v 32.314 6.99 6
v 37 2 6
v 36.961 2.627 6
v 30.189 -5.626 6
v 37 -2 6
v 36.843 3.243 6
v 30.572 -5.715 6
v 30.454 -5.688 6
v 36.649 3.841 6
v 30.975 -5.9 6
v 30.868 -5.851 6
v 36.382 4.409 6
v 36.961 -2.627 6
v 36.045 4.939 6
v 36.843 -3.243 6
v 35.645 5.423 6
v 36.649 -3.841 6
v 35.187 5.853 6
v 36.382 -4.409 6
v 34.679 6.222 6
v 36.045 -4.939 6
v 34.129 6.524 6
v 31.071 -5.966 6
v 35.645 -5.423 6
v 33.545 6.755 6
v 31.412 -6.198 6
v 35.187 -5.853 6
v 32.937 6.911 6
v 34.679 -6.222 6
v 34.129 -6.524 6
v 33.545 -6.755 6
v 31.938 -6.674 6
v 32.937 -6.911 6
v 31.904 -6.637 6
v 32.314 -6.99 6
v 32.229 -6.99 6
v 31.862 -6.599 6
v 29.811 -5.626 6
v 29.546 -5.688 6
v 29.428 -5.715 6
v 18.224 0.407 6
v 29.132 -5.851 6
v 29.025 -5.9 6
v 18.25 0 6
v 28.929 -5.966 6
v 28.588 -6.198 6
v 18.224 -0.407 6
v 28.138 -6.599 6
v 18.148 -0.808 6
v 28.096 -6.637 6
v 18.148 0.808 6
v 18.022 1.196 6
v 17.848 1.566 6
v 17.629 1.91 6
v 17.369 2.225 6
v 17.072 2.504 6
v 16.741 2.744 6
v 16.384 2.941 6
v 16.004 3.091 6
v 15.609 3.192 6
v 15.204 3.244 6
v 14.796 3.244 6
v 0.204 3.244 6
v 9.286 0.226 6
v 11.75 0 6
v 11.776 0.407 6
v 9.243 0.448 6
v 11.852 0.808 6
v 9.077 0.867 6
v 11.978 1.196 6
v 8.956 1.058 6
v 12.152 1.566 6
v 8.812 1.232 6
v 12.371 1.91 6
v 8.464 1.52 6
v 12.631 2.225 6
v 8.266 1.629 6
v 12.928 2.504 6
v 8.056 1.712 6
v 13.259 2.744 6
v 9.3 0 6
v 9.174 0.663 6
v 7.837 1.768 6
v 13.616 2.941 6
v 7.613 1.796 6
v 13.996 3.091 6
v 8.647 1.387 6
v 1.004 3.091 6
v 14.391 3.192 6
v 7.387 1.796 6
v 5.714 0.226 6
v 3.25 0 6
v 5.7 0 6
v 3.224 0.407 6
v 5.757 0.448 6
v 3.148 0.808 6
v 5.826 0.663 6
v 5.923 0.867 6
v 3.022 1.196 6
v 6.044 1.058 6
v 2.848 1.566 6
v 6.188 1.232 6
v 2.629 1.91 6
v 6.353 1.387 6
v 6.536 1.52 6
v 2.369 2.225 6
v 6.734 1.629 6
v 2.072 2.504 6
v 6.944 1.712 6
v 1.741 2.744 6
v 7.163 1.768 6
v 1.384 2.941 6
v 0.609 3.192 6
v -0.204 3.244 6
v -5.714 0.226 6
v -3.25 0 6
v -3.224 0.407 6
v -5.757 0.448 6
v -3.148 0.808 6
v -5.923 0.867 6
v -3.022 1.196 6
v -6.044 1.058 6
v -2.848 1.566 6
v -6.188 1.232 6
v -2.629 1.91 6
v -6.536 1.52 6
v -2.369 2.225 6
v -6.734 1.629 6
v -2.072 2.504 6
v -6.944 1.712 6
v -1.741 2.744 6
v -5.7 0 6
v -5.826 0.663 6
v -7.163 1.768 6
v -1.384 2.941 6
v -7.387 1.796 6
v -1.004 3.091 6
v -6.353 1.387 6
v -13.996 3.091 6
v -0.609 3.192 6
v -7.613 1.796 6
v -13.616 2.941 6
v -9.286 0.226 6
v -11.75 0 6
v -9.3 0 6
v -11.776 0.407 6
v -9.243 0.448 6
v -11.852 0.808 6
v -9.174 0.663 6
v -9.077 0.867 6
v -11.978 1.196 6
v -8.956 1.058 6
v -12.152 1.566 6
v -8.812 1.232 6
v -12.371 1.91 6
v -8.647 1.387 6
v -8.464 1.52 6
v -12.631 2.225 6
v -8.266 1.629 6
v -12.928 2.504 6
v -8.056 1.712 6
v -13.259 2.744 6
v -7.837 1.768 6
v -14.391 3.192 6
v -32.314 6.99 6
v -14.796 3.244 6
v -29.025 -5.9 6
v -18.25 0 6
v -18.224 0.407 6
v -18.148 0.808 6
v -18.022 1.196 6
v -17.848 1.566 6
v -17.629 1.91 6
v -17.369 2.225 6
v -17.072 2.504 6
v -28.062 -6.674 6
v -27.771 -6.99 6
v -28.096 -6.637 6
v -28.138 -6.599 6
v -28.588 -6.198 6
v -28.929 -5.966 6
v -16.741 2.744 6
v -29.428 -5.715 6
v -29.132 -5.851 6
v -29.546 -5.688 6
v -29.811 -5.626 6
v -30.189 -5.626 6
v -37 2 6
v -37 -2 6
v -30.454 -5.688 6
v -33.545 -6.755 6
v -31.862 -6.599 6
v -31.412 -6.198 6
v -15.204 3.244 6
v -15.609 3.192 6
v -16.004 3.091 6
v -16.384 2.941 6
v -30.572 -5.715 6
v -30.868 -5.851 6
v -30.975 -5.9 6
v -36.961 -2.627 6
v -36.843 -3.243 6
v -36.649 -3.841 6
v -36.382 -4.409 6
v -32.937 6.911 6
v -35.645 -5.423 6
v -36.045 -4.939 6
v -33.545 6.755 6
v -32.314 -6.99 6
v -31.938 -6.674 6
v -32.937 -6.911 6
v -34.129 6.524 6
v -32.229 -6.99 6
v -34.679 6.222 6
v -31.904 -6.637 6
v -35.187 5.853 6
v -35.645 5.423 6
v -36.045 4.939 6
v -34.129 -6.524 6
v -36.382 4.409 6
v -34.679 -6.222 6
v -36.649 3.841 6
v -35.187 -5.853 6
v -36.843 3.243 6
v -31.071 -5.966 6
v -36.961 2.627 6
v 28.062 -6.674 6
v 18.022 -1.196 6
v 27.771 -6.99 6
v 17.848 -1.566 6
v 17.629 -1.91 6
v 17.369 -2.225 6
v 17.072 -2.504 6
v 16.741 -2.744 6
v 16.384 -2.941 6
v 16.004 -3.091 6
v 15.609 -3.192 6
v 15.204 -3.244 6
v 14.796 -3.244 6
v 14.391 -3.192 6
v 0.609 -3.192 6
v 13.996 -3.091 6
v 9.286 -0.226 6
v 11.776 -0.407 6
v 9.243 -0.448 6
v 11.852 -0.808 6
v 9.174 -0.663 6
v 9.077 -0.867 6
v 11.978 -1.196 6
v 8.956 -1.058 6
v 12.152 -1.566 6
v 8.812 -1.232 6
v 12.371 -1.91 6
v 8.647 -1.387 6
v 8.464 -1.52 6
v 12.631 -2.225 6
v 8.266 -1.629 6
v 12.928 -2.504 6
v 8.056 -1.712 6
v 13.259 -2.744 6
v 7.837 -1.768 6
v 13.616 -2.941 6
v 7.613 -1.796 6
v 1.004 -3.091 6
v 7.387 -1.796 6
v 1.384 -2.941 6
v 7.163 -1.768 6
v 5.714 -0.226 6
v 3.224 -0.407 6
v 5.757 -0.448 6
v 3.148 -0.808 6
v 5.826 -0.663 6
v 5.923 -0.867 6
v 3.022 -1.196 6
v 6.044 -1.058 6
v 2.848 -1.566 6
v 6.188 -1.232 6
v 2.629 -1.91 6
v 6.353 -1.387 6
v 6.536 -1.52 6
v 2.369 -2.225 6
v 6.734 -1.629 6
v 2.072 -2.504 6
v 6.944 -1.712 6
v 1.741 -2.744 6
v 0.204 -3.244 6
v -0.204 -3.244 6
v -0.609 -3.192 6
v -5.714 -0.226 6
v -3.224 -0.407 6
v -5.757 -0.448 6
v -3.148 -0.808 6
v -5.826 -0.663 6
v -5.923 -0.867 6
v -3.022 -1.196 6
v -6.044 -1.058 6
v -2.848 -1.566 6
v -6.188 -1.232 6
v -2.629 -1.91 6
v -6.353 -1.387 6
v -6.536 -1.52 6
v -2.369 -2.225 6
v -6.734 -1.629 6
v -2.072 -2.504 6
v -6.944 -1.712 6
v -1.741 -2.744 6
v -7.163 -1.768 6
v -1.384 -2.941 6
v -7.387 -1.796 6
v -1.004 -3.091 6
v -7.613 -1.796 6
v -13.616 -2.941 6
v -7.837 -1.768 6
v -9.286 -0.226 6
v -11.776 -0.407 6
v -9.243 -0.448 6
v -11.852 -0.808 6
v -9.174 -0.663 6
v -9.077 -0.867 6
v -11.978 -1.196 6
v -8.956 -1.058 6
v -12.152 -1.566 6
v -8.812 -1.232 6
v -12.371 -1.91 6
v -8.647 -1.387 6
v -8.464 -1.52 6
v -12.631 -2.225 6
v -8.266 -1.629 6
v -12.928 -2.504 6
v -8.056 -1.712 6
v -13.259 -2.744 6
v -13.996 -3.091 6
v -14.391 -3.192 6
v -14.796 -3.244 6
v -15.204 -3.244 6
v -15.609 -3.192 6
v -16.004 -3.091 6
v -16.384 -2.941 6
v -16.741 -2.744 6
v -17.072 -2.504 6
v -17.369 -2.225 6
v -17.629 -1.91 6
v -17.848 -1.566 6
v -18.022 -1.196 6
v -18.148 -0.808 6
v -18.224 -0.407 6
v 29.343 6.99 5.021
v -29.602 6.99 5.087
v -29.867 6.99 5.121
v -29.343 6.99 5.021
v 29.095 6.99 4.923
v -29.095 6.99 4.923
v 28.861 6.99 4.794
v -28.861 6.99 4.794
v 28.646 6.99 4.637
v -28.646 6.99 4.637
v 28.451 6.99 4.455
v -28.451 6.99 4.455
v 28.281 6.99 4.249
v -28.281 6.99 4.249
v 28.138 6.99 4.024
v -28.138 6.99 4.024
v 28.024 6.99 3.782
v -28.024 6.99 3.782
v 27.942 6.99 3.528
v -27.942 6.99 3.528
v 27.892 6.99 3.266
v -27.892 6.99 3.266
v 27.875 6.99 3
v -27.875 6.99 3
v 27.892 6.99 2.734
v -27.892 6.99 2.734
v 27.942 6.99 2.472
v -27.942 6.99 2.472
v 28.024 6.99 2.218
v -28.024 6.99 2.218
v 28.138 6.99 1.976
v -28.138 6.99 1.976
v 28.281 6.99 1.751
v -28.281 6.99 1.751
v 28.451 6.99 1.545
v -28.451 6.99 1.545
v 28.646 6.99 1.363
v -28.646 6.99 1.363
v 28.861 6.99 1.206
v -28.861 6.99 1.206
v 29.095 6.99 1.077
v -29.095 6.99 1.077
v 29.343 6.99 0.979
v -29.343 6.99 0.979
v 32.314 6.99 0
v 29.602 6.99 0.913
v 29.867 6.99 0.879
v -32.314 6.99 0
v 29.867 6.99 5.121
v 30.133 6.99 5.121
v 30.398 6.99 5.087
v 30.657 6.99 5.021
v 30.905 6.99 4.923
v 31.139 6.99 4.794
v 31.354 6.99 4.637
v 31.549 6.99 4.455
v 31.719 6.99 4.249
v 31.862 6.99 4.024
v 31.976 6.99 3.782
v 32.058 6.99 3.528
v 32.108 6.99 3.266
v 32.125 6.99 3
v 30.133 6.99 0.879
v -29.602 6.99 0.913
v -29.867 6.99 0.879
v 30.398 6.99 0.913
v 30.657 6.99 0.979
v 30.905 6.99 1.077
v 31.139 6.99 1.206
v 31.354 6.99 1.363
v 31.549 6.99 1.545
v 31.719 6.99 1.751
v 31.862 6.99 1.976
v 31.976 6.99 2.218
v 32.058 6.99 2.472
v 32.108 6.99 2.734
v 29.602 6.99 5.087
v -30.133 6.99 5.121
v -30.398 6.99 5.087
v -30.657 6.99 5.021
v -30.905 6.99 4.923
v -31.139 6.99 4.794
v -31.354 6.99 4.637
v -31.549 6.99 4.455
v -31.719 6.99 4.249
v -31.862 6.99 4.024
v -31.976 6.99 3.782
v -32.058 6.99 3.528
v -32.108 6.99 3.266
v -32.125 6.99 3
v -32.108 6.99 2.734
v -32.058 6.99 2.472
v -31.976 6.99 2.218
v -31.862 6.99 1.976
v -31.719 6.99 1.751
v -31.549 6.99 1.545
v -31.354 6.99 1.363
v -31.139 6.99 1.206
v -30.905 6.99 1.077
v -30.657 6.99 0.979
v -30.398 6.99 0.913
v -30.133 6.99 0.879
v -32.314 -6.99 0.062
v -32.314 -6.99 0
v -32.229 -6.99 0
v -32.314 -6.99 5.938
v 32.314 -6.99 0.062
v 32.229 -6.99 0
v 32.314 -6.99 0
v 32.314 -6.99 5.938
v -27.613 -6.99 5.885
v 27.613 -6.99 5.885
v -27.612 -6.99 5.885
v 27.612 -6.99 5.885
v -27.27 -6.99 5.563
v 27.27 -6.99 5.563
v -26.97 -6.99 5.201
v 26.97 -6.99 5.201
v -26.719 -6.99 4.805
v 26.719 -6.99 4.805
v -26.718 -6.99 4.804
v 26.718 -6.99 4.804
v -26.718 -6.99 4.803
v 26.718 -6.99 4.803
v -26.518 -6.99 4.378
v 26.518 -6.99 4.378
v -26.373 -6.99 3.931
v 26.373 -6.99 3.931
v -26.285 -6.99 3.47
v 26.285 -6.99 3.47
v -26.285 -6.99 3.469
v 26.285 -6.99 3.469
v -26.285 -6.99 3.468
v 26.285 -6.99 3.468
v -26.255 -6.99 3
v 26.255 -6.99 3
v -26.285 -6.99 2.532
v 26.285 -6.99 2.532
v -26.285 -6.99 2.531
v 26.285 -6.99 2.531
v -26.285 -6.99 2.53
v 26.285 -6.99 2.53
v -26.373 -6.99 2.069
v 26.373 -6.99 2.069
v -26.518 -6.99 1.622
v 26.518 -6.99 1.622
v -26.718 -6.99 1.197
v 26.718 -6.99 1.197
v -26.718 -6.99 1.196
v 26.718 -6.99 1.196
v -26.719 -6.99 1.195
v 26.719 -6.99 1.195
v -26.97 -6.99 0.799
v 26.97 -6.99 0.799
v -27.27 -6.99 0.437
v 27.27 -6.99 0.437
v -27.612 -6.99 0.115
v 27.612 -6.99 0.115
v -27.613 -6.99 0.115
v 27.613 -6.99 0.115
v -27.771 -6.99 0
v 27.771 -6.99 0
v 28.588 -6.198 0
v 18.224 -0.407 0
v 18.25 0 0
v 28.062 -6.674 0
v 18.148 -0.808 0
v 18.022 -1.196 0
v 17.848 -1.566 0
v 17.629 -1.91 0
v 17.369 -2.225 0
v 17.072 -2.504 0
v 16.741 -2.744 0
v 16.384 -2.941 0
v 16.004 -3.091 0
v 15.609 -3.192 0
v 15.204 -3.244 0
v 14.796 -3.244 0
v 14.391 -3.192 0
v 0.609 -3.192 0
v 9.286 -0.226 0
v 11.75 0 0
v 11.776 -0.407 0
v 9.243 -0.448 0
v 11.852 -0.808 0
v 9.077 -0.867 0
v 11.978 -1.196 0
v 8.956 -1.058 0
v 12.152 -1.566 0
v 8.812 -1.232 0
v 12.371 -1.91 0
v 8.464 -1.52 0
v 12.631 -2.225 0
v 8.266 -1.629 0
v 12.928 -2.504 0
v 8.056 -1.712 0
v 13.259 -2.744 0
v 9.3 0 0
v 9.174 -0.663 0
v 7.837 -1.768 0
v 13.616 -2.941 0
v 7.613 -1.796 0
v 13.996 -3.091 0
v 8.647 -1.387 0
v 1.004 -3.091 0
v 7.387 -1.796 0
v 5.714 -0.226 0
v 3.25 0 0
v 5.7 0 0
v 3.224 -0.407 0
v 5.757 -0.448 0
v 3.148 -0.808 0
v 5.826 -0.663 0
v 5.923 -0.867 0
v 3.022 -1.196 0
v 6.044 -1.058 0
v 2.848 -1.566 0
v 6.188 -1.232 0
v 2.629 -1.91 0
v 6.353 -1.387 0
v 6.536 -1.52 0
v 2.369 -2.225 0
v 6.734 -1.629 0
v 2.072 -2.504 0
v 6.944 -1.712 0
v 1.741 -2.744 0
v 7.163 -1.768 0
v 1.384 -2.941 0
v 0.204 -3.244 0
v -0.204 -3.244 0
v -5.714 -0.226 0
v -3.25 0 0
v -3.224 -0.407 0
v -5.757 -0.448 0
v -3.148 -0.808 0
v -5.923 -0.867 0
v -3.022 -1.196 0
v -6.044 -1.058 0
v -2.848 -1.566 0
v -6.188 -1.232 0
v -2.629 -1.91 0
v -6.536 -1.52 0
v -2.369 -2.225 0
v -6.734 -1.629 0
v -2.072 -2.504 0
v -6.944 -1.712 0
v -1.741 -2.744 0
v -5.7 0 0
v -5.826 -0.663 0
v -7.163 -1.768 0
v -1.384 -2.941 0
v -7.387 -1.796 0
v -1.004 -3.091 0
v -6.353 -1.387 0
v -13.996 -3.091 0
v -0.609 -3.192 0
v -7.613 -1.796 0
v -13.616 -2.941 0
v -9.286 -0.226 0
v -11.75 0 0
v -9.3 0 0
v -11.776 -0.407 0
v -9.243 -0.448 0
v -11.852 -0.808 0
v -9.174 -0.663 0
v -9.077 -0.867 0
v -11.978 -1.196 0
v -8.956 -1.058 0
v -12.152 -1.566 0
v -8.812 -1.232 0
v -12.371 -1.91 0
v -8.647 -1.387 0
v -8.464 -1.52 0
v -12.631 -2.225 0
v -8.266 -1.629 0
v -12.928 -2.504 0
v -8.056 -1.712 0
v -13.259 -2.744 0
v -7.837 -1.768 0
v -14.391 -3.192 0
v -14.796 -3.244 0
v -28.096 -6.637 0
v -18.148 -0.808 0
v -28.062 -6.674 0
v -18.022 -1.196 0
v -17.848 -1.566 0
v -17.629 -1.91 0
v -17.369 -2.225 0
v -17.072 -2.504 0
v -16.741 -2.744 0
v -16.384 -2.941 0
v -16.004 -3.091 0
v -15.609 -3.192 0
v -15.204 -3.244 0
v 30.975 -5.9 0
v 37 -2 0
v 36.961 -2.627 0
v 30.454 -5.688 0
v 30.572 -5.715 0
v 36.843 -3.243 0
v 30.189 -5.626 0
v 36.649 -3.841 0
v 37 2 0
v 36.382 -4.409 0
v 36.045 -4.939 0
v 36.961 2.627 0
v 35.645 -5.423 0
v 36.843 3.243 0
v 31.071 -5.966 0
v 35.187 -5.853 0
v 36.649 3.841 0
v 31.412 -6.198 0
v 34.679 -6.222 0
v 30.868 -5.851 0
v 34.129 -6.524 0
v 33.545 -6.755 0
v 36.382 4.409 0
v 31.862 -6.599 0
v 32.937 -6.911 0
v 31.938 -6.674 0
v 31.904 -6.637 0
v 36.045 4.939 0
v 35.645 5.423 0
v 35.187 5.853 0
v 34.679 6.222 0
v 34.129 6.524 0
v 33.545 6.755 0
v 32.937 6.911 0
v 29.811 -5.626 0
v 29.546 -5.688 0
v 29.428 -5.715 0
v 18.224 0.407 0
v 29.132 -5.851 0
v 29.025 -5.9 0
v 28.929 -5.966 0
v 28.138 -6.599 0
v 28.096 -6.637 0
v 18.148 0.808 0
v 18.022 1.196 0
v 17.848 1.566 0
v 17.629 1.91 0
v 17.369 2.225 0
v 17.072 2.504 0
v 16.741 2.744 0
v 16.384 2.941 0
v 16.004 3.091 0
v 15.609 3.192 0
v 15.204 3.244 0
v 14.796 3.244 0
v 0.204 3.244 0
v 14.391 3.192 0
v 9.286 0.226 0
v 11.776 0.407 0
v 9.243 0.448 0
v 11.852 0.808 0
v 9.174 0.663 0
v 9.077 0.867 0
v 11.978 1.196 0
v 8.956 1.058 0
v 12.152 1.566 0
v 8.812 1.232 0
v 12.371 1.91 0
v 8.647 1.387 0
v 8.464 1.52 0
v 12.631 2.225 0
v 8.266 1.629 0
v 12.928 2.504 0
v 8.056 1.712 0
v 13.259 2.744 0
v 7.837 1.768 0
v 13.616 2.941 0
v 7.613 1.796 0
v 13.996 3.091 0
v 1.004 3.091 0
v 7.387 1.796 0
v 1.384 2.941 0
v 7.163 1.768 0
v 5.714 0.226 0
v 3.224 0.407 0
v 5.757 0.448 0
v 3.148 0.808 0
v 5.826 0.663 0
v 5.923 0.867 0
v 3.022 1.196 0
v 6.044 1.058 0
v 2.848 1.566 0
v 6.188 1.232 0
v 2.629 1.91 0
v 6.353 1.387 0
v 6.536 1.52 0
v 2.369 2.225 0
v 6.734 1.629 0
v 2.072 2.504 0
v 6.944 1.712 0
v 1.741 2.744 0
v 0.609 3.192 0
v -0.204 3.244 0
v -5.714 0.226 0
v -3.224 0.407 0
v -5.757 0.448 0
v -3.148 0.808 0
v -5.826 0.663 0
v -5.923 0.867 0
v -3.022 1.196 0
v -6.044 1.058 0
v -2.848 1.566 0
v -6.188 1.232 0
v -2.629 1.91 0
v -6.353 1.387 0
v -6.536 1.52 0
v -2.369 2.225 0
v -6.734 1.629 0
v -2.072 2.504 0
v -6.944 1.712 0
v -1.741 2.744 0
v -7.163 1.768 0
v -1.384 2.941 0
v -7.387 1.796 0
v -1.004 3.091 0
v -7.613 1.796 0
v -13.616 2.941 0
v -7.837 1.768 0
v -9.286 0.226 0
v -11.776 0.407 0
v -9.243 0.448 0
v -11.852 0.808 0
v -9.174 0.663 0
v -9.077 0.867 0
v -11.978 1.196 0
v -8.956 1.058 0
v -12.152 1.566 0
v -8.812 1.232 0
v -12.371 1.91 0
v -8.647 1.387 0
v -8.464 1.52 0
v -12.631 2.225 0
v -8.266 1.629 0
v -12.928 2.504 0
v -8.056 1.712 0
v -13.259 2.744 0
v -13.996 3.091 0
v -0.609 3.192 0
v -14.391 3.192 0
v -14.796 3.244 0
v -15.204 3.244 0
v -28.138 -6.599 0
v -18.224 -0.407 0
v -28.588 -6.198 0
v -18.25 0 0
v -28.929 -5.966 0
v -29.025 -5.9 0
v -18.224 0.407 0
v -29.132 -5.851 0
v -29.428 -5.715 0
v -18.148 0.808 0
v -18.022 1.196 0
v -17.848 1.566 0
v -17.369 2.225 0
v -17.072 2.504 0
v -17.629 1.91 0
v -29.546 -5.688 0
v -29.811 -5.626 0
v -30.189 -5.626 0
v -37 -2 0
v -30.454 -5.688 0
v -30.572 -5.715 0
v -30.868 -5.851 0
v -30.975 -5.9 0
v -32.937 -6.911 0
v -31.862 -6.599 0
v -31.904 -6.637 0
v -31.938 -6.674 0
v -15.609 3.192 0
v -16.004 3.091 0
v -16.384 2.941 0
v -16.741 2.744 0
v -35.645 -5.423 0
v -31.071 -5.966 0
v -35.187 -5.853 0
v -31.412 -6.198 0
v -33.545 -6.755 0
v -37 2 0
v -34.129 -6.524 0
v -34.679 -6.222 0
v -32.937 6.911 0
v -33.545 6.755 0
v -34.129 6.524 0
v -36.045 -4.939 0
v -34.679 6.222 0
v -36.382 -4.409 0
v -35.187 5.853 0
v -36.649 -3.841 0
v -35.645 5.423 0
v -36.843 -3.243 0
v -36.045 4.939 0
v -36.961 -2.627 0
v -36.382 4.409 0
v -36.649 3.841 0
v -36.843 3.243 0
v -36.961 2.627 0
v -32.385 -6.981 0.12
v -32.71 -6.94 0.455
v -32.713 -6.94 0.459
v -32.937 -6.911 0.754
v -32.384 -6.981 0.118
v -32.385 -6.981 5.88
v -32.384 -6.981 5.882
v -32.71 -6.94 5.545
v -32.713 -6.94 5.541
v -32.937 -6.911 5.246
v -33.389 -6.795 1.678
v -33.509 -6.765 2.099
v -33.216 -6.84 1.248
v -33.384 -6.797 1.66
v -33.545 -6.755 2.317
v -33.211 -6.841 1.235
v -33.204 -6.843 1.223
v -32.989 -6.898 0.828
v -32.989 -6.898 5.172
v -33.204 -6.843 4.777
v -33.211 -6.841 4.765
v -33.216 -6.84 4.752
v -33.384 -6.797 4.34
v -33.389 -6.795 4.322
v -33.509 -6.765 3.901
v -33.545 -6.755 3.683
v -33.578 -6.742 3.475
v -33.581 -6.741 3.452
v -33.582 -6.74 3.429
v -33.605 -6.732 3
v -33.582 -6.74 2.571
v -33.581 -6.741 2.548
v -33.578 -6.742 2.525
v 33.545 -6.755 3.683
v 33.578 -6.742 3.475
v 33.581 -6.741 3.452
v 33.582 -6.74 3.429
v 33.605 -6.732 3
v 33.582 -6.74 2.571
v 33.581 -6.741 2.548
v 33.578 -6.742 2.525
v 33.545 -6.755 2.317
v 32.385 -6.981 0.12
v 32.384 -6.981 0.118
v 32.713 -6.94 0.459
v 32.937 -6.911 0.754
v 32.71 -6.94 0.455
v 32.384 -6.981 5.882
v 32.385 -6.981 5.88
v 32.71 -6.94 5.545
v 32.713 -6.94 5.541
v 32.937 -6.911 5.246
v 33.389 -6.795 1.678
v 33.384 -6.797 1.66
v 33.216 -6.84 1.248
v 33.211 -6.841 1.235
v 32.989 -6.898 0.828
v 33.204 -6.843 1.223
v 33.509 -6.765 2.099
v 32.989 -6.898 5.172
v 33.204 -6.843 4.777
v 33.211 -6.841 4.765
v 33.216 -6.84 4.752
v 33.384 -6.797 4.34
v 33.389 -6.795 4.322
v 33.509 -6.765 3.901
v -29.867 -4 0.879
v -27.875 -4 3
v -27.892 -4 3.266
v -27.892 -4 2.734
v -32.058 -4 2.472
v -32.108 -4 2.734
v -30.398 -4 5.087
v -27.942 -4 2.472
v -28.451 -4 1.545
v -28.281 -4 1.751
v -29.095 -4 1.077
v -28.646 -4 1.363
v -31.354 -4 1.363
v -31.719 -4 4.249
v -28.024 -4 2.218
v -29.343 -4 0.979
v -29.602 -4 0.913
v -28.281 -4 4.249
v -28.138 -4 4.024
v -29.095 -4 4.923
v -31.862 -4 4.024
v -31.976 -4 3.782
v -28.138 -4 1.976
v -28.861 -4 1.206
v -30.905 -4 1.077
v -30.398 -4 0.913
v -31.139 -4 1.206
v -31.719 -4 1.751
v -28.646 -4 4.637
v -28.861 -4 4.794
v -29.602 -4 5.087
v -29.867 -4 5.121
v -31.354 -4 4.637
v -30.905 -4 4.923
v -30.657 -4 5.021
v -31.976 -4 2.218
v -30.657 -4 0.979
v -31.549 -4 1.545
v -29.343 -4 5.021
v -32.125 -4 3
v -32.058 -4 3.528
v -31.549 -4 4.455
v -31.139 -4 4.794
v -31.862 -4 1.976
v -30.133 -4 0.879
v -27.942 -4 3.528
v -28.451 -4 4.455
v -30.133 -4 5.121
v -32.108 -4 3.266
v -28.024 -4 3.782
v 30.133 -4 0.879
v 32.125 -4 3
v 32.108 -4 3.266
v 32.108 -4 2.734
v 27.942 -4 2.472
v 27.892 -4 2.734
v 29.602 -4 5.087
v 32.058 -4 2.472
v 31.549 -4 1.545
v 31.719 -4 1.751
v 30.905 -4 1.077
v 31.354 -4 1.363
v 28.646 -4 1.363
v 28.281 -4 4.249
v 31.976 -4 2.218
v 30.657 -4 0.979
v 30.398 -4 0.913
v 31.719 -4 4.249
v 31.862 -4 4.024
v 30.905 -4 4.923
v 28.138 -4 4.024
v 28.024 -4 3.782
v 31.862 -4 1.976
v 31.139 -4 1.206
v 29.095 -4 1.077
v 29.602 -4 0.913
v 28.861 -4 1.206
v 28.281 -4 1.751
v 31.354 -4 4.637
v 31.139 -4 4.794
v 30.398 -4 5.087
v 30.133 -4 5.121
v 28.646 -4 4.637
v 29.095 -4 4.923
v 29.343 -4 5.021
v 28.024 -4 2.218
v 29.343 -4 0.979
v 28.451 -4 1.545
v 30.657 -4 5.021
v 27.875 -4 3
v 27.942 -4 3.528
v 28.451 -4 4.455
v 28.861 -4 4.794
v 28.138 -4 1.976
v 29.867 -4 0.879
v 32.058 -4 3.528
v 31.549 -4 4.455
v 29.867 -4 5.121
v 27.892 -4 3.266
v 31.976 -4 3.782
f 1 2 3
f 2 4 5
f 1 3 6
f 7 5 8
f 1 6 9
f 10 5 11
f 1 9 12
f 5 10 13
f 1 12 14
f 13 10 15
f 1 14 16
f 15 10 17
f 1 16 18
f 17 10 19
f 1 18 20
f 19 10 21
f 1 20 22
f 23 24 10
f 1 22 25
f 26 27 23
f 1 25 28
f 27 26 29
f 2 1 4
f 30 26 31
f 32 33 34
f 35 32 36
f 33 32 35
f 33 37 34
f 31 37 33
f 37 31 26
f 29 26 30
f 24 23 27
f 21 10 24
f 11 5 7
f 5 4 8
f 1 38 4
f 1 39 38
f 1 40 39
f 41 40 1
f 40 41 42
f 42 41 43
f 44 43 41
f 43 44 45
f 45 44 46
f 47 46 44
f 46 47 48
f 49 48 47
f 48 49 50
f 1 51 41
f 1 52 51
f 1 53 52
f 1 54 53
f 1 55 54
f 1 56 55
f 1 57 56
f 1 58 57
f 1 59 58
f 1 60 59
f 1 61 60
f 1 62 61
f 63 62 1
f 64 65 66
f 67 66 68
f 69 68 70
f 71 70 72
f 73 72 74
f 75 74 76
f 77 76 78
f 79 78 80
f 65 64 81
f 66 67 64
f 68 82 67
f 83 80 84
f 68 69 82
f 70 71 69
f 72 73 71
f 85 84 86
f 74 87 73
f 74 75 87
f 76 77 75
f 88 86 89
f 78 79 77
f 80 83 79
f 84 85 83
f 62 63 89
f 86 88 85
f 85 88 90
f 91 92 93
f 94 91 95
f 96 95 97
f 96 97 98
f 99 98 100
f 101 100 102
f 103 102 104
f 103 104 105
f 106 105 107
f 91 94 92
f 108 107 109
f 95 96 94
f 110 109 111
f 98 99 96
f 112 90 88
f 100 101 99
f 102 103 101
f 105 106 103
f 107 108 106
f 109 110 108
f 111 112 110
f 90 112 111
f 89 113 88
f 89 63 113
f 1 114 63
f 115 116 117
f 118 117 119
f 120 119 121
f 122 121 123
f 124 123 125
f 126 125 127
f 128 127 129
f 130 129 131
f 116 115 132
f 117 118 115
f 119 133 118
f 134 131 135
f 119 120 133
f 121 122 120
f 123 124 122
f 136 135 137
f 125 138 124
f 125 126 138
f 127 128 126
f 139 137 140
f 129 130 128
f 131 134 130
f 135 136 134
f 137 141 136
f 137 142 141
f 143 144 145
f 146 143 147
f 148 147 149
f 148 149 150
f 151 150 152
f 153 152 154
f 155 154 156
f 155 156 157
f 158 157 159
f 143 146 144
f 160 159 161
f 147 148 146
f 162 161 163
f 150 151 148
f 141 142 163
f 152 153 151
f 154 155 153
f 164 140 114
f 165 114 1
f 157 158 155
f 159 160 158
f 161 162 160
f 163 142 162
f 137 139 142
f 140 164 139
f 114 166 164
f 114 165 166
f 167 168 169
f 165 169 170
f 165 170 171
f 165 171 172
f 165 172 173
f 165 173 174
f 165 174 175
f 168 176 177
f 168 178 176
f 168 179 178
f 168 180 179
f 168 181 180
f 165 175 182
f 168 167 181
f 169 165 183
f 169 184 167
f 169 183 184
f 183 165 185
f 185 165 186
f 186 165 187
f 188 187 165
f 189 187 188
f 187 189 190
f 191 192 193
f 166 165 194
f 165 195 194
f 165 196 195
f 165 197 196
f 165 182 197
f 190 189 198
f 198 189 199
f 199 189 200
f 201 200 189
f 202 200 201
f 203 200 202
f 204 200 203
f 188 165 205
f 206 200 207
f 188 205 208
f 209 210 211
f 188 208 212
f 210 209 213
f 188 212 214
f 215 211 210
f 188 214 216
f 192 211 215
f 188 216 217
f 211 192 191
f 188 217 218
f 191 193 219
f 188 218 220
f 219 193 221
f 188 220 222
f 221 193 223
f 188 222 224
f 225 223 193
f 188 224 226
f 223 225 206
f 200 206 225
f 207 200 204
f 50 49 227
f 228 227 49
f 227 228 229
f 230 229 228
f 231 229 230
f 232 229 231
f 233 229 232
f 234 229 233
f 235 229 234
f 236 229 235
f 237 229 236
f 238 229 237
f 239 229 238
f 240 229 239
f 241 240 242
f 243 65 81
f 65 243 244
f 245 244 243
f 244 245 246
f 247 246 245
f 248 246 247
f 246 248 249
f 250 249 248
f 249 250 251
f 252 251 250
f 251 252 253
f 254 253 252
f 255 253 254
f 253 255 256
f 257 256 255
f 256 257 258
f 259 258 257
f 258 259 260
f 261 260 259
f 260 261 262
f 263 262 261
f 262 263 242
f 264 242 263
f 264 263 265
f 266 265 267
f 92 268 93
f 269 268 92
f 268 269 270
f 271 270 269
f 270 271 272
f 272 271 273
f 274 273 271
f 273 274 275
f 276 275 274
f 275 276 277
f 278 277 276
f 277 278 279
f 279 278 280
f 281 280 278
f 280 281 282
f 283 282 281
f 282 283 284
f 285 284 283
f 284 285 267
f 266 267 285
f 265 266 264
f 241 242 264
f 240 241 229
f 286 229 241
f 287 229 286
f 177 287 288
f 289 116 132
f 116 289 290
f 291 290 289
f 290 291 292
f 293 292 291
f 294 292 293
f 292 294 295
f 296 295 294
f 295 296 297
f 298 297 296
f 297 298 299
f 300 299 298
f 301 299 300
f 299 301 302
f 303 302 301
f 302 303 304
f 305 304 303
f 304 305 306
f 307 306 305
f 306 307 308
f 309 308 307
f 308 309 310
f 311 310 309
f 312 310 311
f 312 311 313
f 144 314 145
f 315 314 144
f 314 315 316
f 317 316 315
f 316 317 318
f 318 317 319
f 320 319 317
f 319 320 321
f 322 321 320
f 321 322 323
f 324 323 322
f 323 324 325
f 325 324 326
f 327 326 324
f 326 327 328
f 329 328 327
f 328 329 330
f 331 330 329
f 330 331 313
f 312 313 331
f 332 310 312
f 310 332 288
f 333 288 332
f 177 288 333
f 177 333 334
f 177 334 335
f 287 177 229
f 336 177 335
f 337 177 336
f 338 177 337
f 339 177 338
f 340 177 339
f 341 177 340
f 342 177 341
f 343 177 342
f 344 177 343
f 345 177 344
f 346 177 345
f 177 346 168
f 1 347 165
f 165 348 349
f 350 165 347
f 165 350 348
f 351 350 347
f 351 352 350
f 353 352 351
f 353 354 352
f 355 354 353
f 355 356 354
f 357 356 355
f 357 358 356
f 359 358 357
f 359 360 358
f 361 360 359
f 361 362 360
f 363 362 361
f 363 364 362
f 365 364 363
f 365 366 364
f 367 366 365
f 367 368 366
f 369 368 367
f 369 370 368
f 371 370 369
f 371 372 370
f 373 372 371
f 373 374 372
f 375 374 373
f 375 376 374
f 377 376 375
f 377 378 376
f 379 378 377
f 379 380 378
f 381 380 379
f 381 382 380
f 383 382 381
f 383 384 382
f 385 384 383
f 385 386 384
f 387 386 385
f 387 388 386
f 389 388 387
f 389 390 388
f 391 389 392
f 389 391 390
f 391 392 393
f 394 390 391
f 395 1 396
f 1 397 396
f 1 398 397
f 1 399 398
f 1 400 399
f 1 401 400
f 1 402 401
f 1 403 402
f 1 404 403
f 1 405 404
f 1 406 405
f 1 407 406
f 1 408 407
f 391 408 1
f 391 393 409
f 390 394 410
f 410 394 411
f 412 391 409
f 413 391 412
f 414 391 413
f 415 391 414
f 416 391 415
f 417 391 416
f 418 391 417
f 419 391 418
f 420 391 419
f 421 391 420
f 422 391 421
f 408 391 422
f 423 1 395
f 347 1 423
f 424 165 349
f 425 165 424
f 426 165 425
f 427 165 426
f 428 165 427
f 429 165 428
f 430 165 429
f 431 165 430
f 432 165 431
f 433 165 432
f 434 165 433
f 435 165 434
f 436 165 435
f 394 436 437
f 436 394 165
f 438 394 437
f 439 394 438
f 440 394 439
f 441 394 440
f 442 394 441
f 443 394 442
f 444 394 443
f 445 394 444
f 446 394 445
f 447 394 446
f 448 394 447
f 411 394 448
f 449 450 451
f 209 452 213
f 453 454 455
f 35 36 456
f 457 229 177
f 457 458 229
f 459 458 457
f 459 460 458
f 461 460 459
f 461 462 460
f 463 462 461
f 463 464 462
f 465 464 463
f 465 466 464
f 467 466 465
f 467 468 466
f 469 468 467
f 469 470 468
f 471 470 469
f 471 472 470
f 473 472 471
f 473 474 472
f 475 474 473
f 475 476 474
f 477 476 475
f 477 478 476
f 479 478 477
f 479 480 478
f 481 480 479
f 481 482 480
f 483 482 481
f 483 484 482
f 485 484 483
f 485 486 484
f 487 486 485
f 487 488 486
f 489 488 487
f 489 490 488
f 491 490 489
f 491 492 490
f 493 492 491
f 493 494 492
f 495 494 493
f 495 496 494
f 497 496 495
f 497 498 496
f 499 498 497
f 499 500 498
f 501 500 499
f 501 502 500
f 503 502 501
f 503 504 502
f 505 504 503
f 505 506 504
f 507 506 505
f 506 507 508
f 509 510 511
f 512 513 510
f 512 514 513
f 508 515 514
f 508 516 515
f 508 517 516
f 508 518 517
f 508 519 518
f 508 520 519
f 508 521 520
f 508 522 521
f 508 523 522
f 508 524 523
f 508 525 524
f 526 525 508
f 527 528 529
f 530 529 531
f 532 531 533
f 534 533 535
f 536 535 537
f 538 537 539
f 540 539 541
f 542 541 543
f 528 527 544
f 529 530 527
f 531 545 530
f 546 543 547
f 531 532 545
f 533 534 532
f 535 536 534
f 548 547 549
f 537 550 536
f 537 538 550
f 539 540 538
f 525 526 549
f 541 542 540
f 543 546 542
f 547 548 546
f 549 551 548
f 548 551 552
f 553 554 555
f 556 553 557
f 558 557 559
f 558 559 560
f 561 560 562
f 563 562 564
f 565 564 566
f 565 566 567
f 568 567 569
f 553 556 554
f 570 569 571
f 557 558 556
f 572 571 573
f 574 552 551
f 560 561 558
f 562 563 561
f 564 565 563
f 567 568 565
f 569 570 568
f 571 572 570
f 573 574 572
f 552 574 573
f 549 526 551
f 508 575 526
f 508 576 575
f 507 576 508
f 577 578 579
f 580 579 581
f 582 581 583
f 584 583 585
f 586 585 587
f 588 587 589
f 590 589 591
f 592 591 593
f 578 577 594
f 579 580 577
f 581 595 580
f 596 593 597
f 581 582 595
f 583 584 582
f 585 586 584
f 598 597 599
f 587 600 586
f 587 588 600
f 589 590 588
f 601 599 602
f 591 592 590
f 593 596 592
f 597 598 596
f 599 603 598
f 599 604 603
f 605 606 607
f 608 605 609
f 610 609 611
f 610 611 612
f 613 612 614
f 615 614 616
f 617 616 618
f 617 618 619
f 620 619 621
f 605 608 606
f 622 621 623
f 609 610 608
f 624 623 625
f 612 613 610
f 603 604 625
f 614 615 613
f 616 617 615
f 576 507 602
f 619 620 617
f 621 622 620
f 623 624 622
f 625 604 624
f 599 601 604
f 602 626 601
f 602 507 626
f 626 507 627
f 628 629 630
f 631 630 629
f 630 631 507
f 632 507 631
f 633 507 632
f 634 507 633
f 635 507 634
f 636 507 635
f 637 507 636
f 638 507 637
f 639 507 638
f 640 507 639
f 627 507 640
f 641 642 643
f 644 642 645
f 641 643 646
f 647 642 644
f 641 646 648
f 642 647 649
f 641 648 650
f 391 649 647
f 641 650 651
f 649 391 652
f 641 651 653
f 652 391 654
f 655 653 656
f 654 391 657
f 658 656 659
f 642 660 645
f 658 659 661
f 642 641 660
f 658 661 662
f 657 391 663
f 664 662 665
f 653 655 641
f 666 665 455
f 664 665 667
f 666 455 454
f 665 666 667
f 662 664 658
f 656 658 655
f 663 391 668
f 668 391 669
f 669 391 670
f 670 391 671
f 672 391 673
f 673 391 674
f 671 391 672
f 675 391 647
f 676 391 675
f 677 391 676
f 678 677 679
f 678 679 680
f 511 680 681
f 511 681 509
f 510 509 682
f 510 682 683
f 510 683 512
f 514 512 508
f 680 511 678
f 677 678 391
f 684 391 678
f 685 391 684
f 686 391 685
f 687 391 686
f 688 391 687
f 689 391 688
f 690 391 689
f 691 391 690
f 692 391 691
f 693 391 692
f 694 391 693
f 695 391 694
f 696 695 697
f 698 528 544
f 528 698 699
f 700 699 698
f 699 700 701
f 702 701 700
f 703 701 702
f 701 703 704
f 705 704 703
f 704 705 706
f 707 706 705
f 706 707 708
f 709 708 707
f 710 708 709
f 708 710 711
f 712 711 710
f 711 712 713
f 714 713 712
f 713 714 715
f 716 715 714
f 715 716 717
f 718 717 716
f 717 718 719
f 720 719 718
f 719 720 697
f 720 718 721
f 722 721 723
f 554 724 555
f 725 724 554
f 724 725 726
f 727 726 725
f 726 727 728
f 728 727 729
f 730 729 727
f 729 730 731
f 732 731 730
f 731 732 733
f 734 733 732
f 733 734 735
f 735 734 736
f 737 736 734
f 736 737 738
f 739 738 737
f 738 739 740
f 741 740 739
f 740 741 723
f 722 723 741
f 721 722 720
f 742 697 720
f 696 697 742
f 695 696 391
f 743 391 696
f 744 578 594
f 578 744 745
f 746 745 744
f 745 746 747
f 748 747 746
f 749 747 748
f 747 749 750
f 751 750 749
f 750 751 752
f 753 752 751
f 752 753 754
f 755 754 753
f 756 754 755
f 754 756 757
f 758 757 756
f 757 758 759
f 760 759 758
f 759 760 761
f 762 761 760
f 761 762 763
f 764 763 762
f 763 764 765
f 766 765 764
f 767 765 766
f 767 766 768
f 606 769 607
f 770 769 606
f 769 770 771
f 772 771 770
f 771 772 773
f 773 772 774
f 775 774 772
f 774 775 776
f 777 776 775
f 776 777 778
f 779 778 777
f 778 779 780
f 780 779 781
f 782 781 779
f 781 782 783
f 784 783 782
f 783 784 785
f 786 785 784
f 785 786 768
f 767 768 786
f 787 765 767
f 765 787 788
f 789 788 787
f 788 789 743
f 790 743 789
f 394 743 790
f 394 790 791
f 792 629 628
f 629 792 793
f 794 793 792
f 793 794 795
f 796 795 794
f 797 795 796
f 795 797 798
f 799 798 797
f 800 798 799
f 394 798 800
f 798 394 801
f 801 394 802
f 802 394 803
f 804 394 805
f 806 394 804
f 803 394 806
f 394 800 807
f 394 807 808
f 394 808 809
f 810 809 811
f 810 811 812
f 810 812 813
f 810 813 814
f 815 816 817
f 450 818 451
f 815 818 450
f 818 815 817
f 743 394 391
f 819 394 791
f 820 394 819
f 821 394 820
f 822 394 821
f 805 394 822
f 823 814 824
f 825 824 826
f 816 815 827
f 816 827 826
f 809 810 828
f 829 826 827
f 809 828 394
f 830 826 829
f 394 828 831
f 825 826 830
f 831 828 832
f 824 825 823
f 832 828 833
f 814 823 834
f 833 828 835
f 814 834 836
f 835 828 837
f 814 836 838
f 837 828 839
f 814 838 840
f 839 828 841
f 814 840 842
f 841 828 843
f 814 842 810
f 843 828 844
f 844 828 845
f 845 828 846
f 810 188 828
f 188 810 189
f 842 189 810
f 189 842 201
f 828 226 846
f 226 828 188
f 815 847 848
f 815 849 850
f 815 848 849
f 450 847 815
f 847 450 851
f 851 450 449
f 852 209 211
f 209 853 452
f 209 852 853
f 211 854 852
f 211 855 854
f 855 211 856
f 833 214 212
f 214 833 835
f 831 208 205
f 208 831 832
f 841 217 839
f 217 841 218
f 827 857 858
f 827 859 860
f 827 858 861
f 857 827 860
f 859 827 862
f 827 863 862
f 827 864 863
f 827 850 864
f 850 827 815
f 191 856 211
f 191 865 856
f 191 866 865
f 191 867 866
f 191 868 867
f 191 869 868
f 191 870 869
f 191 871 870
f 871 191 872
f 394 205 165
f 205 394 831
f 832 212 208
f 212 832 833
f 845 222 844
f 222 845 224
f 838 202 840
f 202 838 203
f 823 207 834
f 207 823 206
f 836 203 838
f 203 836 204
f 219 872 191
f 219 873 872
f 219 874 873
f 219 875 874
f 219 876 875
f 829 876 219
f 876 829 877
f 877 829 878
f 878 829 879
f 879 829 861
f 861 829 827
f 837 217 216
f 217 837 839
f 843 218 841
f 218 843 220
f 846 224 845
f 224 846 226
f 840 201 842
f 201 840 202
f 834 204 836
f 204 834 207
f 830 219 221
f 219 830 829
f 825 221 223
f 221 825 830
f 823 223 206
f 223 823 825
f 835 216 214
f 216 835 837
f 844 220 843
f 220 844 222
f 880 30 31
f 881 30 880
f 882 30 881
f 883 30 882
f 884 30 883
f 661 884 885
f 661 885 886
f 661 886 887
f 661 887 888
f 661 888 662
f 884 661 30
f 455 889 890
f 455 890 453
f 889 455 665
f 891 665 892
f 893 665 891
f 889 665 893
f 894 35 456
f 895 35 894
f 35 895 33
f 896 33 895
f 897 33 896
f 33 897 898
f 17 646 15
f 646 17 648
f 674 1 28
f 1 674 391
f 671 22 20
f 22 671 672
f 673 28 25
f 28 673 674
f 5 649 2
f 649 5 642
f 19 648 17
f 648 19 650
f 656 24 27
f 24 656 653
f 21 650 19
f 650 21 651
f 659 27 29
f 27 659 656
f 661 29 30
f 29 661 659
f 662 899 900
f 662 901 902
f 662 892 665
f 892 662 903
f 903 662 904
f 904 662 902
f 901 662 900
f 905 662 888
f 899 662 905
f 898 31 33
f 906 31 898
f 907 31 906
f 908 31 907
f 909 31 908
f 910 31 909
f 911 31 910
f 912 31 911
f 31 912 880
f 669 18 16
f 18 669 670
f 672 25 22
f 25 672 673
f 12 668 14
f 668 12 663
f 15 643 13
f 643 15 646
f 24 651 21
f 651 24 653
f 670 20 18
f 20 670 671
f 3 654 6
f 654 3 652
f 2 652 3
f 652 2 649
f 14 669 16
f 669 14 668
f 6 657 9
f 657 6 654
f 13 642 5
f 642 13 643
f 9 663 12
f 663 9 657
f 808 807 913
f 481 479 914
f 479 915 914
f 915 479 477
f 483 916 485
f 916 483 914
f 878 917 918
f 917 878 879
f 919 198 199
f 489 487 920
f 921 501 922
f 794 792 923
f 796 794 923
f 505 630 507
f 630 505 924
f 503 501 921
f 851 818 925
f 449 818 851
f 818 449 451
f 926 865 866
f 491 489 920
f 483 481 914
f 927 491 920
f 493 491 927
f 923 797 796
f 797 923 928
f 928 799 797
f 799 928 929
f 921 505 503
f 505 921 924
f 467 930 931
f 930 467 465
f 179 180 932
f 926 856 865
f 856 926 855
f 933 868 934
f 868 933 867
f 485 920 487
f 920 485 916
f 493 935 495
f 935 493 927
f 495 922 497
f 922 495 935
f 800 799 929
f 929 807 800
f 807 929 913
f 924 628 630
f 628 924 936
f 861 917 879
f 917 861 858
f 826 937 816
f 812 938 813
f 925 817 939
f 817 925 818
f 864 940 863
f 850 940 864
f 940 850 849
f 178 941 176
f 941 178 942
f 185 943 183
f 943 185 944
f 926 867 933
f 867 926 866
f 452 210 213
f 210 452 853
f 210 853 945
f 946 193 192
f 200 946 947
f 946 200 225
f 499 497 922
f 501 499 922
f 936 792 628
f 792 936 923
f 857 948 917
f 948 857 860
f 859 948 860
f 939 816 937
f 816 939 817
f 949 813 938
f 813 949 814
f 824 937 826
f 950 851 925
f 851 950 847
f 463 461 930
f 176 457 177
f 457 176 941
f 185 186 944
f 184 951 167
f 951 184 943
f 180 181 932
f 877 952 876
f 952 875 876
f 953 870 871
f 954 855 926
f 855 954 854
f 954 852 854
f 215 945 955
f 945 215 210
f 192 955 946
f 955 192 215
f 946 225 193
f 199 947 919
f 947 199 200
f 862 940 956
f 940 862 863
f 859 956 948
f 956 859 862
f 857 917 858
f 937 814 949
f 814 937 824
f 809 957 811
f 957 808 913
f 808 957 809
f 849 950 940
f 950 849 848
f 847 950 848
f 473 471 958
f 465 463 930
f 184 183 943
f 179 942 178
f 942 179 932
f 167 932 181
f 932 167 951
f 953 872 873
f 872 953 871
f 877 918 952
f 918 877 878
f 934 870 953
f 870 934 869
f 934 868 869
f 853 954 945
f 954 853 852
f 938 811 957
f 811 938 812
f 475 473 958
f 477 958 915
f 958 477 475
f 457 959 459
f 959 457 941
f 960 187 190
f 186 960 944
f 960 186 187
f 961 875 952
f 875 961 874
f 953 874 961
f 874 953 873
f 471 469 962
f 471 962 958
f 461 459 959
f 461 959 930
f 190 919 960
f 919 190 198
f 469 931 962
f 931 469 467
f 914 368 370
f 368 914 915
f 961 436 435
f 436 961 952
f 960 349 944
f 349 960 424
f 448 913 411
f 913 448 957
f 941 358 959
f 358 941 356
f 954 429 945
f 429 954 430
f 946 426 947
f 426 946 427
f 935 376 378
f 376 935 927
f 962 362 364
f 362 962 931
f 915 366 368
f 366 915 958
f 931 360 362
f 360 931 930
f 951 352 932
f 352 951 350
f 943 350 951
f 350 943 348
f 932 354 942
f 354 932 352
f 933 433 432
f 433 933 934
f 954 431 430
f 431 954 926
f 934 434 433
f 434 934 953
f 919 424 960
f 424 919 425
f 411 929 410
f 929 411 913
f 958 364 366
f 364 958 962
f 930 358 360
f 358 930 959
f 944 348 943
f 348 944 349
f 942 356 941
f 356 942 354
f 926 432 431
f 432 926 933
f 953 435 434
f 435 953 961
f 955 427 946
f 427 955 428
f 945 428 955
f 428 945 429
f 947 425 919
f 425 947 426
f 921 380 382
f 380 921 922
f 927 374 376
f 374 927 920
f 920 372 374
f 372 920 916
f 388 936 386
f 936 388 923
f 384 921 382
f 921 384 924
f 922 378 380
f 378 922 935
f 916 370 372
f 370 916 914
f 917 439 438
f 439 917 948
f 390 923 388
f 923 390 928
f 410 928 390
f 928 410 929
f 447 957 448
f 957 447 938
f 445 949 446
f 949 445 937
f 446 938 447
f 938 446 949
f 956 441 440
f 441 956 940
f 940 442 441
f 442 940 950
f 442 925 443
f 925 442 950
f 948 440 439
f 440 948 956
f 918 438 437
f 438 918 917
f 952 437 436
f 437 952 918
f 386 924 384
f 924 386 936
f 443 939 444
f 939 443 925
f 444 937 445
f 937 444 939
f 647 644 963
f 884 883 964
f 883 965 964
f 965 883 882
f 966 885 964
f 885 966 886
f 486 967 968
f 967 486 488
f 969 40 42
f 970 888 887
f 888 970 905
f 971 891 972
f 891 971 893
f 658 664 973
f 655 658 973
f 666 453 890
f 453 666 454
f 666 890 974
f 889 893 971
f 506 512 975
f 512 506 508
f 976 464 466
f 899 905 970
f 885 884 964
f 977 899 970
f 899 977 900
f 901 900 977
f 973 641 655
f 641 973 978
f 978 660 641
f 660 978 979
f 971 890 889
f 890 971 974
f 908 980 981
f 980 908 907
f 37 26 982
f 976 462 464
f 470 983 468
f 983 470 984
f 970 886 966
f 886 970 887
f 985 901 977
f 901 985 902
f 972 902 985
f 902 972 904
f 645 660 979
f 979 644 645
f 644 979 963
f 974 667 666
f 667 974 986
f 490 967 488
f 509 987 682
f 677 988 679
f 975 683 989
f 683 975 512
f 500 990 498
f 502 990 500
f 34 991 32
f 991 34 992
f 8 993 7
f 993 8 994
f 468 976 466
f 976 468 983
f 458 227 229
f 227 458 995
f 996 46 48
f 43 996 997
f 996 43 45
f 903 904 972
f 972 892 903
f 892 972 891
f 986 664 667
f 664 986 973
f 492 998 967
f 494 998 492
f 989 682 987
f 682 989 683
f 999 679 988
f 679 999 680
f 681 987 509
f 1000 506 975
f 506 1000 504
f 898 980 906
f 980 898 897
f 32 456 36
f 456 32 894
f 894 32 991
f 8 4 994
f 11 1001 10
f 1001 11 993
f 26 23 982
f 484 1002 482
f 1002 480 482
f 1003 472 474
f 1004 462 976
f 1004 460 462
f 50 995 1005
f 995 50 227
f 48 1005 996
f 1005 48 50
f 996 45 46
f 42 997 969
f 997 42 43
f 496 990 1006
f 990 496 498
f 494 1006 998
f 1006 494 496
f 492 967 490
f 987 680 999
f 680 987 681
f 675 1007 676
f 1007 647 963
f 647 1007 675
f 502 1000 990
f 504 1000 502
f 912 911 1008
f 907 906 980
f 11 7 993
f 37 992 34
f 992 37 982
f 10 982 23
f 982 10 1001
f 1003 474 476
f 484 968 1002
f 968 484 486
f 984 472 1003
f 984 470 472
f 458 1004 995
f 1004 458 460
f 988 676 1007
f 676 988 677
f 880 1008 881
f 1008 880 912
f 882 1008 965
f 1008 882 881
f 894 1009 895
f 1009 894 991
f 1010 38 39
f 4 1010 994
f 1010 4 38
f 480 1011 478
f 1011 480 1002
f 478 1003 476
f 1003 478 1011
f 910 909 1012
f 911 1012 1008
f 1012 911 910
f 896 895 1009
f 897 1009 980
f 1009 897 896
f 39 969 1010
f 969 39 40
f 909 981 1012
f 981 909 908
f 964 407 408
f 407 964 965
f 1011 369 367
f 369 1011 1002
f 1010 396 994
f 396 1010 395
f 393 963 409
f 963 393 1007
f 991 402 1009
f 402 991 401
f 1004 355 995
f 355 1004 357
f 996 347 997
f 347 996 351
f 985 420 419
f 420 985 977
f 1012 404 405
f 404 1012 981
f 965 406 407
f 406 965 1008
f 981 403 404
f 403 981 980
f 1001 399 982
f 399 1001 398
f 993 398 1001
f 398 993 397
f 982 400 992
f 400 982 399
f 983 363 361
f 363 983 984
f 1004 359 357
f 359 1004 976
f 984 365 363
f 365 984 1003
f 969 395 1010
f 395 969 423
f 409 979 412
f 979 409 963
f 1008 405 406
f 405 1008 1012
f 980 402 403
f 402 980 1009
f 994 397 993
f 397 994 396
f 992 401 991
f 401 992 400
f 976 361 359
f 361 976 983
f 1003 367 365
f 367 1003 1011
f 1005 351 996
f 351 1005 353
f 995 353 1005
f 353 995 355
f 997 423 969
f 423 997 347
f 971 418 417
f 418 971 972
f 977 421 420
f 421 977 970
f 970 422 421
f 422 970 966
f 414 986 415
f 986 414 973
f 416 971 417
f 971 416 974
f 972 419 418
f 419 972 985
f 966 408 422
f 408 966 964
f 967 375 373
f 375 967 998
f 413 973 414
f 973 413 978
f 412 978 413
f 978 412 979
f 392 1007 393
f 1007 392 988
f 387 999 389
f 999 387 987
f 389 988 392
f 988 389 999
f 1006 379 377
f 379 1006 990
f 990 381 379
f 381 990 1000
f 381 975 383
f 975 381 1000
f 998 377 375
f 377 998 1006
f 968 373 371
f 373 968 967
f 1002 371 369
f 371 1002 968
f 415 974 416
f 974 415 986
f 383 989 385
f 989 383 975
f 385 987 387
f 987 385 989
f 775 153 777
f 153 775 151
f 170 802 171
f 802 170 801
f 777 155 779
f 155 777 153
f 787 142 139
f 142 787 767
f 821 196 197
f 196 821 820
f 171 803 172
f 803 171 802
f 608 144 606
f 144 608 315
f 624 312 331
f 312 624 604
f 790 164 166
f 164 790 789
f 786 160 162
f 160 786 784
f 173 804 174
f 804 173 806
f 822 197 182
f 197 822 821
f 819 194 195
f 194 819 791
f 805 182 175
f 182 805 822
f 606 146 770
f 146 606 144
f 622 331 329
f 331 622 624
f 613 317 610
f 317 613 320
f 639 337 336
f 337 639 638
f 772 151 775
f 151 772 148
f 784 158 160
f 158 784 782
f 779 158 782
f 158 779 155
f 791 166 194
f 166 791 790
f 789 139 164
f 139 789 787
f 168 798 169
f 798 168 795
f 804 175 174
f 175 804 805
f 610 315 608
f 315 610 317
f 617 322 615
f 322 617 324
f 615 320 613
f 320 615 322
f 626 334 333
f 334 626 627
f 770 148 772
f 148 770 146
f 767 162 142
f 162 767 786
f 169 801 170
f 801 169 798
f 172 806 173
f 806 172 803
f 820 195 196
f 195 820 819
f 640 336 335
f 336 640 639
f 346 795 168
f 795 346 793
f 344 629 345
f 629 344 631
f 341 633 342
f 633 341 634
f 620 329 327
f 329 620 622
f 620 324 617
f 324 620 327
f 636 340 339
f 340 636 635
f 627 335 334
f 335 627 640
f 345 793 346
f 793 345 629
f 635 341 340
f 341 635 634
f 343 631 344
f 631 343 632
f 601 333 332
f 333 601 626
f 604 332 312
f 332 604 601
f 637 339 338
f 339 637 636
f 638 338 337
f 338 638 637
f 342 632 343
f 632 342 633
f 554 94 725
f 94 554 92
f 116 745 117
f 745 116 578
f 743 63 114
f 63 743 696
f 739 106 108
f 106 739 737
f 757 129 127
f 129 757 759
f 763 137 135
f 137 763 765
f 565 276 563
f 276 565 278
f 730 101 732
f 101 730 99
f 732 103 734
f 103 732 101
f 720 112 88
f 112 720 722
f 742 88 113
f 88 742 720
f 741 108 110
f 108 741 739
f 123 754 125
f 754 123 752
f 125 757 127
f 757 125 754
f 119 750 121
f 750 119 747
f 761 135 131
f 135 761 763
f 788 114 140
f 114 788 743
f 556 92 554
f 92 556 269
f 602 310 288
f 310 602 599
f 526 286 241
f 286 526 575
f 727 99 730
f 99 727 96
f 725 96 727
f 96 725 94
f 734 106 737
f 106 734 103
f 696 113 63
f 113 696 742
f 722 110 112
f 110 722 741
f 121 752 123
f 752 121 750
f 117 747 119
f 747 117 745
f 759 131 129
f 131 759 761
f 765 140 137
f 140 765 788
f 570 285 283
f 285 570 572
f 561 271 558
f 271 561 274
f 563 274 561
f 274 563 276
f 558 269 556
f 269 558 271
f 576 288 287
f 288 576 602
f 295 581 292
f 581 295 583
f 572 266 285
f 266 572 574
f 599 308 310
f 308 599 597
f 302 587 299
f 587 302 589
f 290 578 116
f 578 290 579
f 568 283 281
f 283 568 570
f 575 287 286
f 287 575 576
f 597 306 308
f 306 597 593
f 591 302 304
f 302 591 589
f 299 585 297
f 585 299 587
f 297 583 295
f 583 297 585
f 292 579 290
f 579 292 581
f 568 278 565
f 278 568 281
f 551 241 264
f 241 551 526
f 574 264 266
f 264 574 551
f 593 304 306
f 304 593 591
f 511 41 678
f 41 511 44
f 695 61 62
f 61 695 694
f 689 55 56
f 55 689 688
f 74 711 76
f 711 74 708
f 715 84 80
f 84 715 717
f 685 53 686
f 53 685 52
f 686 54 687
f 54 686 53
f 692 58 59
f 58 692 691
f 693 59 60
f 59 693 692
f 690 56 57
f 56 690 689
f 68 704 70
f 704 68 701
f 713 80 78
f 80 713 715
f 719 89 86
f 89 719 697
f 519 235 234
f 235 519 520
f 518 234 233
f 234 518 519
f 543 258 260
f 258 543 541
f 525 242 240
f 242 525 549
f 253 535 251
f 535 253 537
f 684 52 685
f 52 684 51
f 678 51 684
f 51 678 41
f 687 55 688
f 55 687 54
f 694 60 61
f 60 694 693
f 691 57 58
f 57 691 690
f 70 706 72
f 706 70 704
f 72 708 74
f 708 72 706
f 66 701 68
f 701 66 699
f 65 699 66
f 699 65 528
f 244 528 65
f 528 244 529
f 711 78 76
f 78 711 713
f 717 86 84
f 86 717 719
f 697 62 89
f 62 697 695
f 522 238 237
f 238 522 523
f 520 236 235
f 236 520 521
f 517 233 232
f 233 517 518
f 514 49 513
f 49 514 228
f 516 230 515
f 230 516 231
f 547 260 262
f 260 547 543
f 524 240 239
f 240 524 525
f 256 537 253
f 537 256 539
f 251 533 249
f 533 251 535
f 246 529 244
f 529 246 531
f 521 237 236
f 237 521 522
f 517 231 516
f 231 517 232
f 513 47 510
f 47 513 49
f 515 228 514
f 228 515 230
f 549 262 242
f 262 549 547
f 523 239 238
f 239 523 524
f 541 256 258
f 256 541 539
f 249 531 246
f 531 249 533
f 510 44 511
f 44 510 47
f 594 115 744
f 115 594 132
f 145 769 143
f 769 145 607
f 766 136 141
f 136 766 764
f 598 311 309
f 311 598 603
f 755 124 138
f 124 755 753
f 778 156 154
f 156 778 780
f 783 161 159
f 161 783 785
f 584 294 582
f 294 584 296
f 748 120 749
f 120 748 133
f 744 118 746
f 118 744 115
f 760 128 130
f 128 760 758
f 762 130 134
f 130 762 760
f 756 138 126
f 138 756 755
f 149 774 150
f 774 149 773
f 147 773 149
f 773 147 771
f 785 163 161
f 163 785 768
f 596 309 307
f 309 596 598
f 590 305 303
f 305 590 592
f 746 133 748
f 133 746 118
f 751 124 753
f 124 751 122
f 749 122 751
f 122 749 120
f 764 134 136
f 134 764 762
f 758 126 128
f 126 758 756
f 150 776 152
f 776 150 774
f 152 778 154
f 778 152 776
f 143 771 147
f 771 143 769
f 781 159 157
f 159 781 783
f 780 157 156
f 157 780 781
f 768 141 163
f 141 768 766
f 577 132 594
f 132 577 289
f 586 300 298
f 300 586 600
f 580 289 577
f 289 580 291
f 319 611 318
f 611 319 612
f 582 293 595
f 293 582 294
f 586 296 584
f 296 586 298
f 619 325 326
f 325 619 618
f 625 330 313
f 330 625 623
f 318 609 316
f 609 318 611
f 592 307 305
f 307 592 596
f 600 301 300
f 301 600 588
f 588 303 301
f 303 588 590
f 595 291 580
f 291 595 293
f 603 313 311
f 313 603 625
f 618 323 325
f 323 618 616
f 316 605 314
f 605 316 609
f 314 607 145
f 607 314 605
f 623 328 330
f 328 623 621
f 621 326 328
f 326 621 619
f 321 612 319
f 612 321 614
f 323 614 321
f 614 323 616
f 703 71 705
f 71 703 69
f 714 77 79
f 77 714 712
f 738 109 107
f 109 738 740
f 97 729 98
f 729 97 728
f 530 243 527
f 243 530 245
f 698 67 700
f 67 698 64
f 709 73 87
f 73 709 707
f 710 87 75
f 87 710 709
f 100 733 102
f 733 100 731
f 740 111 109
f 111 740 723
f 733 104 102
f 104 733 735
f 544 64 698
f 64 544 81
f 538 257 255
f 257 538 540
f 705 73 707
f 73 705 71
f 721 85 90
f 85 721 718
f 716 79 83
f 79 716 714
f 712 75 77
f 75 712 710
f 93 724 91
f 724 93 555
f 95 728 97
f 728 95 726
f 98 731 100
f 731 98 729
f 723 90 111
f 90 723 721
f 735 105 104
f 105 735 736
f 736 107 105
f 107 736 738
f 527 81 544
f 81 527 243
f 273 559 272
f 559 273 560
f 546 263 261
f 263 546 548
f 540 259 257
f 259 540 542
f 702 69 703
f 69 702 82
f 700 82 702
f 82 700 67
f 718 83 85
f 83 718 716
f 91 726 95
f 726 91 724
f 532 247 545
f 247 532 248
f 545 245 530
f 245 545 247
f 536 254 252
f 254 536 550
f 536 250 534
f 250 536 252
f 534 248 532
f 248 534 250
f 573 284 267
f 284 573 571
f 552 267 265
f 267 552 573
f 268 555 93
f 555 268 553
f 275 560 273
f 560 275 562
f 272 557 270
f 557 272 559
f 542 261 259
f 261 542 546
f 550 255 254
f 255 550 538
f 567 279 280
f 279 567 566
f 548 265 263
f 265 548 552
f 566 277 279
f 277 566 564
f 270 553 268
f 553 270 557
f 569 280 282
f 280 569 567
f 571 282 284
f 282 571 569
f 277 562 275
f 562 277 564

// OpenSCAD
$fn = 50;


difference() {
	union() {
		hull() {
			translate(v = [-17.0000000000, 2.0000000000, 0]) {
				cylinder(h = 6, r = 5);
			}
			translate(v = [17.0000000000, 2.0000000000, 0]) {
				cylinder(h = 6, r = 5);
			}
			translate(v = [-17.0000000000, -2.0000000000, 0]) {
				cylinder(h = 6, r = 5);
			}
			translate(v = [17.0000000000, -2.0000000000, 0]) {
				cylinder(h = 6, r = 5);
			}
		}
		translate(v = [-22.5000000000, 0.0000000000, 0]) {
			hull() {
				translate(v = [-9.5000000000, 2.0000000000, 0]) {
					cylinder(h = 6, r = 5);
				}
				translate(v = [9.5000000000, 2.0000000000, 0]) {
					cylinder(h = 6, r = 5);
				}
				translate(v = [-9.5000000000, -2.0000000000, 0]) {
					cylinder(h = 6, r = 5);
				}
				translate(v = [9.5000000000, -2.0000000000, 0]) {
					cylinder(h = 6, r = 5);
				}
			}
		}
		translate(v = [22.5000000000, 0.0000000000, 0]) {
			hull() {
				translate(v = [-9.5000000000, 2.0000000000, 0]) {
					cylinder(h = 6, r = 5);
				}
				translate(v = [9.5000000000, 2.0000000000, 0]) {
					cylinder(h = 6, r = 5);
				}
				translate(v = [-9.5000000000, -2.0000000000, 0]) {
					cylinder(h = 6, r = 5);
				}
				translate(v = [9.5000000000, -2.0000000000, 0]) {
					cylinder(h = 6, r = 5);
				}
			}
		}
	}
	union() {
		translate(v = [-30.0000000000, -7.0000000000, 3.0000000000]) {
			rotate(a = [90, 0, 0]) {
				difference() {
					union() {
						#translate(v = [0, 0, -14.0000000000]) {
							cylinder(h = 14, r = 2.0000000000);
						}
						#translate(v = [0, 0, -3]) {
							cylinder(h = 3, r1 = 2.1250000000, r2 = 3.7500000000);
						}
						#translate(v = [0, 0, -14.0000000000]) {
							cylinder(h = 14, r = 2.1250000000);
						}
						#translate(v = [0, 0, -14.0000000000]) {
							cylinder(h = 14, r = 2.0000000000);
						}
					}
					union();
				}
			}
		}
		translate(v = [30.0000000000, -7.0000000000, 3.0000000000]) {
			rotate(a = [90, 0, 0]) {
				difference() {
					union() {
						#translate(v = [0, 0, -14.0000000000]) {
							cylinder(h = 14, r = 2.0000000000);
						}
						#translate(v = [0, 0, -3]) {
							cylinder(h = 3, r1 = 2.1250000000, r2 = 3.7500000000);
						}
						#translate(v = [0, 0, -14.0000000000]) {
							cylinder(h = 14, r = 2.1250000000);
						}
						#translate(v = [0, 0, -14.0000000000]) {
							cylinder(h = 14, r = 2.0000000000);
						}
					}
					union();
				}
			}
		}
		translate(v = [-15.0000000000, 0.0000000000, 0]) {
			translate(v = [0, 0, -100]) {
				cylinder(h = 200, r = 3.2500000000);
			}
		}
		translate(v = [0, 0, -100]) {
			cylinder(h = 200, r = 3.2500000000);
		}
		translate(v = [15.0000000000, 0.0000000000, 0]) {
			translate(v = [0, 0, -100]) {
				cylinder(h = 200, r = 3.2500000000);
			}
		}
		translate(v = [-15.0000000000, 0.0000000000, 0]) {
			translate(v = [0, 0, -100]) {
				cylinder(h = 200, r = 1.8000000000);
			}
		}
		translate(v = [-7.5000000000, 0.0000000000, 0]) {
			translate(v = [0, 0, -100]) {
				cylinder(h = 200, r = 1.8000000000);
			}
		}
		translate(v = [0, 0, -100]) {
			cylinder(h = 200, r = 1.8000000000);
		}
		translate(v = [7.5000000000, 0.0000000000, 0]) {
			translate(v = [0, 0, -100]) {
				cylinder(h = 200, r = 1.8000000000);
			}
		}
		translate(v = [15.0000000000, 0.0000000000, 0]) {
			translate(v = [0, 0, -100]) {
				cylinder(h = 200, r = 1.8000000000);
			}
		}
	}
}
